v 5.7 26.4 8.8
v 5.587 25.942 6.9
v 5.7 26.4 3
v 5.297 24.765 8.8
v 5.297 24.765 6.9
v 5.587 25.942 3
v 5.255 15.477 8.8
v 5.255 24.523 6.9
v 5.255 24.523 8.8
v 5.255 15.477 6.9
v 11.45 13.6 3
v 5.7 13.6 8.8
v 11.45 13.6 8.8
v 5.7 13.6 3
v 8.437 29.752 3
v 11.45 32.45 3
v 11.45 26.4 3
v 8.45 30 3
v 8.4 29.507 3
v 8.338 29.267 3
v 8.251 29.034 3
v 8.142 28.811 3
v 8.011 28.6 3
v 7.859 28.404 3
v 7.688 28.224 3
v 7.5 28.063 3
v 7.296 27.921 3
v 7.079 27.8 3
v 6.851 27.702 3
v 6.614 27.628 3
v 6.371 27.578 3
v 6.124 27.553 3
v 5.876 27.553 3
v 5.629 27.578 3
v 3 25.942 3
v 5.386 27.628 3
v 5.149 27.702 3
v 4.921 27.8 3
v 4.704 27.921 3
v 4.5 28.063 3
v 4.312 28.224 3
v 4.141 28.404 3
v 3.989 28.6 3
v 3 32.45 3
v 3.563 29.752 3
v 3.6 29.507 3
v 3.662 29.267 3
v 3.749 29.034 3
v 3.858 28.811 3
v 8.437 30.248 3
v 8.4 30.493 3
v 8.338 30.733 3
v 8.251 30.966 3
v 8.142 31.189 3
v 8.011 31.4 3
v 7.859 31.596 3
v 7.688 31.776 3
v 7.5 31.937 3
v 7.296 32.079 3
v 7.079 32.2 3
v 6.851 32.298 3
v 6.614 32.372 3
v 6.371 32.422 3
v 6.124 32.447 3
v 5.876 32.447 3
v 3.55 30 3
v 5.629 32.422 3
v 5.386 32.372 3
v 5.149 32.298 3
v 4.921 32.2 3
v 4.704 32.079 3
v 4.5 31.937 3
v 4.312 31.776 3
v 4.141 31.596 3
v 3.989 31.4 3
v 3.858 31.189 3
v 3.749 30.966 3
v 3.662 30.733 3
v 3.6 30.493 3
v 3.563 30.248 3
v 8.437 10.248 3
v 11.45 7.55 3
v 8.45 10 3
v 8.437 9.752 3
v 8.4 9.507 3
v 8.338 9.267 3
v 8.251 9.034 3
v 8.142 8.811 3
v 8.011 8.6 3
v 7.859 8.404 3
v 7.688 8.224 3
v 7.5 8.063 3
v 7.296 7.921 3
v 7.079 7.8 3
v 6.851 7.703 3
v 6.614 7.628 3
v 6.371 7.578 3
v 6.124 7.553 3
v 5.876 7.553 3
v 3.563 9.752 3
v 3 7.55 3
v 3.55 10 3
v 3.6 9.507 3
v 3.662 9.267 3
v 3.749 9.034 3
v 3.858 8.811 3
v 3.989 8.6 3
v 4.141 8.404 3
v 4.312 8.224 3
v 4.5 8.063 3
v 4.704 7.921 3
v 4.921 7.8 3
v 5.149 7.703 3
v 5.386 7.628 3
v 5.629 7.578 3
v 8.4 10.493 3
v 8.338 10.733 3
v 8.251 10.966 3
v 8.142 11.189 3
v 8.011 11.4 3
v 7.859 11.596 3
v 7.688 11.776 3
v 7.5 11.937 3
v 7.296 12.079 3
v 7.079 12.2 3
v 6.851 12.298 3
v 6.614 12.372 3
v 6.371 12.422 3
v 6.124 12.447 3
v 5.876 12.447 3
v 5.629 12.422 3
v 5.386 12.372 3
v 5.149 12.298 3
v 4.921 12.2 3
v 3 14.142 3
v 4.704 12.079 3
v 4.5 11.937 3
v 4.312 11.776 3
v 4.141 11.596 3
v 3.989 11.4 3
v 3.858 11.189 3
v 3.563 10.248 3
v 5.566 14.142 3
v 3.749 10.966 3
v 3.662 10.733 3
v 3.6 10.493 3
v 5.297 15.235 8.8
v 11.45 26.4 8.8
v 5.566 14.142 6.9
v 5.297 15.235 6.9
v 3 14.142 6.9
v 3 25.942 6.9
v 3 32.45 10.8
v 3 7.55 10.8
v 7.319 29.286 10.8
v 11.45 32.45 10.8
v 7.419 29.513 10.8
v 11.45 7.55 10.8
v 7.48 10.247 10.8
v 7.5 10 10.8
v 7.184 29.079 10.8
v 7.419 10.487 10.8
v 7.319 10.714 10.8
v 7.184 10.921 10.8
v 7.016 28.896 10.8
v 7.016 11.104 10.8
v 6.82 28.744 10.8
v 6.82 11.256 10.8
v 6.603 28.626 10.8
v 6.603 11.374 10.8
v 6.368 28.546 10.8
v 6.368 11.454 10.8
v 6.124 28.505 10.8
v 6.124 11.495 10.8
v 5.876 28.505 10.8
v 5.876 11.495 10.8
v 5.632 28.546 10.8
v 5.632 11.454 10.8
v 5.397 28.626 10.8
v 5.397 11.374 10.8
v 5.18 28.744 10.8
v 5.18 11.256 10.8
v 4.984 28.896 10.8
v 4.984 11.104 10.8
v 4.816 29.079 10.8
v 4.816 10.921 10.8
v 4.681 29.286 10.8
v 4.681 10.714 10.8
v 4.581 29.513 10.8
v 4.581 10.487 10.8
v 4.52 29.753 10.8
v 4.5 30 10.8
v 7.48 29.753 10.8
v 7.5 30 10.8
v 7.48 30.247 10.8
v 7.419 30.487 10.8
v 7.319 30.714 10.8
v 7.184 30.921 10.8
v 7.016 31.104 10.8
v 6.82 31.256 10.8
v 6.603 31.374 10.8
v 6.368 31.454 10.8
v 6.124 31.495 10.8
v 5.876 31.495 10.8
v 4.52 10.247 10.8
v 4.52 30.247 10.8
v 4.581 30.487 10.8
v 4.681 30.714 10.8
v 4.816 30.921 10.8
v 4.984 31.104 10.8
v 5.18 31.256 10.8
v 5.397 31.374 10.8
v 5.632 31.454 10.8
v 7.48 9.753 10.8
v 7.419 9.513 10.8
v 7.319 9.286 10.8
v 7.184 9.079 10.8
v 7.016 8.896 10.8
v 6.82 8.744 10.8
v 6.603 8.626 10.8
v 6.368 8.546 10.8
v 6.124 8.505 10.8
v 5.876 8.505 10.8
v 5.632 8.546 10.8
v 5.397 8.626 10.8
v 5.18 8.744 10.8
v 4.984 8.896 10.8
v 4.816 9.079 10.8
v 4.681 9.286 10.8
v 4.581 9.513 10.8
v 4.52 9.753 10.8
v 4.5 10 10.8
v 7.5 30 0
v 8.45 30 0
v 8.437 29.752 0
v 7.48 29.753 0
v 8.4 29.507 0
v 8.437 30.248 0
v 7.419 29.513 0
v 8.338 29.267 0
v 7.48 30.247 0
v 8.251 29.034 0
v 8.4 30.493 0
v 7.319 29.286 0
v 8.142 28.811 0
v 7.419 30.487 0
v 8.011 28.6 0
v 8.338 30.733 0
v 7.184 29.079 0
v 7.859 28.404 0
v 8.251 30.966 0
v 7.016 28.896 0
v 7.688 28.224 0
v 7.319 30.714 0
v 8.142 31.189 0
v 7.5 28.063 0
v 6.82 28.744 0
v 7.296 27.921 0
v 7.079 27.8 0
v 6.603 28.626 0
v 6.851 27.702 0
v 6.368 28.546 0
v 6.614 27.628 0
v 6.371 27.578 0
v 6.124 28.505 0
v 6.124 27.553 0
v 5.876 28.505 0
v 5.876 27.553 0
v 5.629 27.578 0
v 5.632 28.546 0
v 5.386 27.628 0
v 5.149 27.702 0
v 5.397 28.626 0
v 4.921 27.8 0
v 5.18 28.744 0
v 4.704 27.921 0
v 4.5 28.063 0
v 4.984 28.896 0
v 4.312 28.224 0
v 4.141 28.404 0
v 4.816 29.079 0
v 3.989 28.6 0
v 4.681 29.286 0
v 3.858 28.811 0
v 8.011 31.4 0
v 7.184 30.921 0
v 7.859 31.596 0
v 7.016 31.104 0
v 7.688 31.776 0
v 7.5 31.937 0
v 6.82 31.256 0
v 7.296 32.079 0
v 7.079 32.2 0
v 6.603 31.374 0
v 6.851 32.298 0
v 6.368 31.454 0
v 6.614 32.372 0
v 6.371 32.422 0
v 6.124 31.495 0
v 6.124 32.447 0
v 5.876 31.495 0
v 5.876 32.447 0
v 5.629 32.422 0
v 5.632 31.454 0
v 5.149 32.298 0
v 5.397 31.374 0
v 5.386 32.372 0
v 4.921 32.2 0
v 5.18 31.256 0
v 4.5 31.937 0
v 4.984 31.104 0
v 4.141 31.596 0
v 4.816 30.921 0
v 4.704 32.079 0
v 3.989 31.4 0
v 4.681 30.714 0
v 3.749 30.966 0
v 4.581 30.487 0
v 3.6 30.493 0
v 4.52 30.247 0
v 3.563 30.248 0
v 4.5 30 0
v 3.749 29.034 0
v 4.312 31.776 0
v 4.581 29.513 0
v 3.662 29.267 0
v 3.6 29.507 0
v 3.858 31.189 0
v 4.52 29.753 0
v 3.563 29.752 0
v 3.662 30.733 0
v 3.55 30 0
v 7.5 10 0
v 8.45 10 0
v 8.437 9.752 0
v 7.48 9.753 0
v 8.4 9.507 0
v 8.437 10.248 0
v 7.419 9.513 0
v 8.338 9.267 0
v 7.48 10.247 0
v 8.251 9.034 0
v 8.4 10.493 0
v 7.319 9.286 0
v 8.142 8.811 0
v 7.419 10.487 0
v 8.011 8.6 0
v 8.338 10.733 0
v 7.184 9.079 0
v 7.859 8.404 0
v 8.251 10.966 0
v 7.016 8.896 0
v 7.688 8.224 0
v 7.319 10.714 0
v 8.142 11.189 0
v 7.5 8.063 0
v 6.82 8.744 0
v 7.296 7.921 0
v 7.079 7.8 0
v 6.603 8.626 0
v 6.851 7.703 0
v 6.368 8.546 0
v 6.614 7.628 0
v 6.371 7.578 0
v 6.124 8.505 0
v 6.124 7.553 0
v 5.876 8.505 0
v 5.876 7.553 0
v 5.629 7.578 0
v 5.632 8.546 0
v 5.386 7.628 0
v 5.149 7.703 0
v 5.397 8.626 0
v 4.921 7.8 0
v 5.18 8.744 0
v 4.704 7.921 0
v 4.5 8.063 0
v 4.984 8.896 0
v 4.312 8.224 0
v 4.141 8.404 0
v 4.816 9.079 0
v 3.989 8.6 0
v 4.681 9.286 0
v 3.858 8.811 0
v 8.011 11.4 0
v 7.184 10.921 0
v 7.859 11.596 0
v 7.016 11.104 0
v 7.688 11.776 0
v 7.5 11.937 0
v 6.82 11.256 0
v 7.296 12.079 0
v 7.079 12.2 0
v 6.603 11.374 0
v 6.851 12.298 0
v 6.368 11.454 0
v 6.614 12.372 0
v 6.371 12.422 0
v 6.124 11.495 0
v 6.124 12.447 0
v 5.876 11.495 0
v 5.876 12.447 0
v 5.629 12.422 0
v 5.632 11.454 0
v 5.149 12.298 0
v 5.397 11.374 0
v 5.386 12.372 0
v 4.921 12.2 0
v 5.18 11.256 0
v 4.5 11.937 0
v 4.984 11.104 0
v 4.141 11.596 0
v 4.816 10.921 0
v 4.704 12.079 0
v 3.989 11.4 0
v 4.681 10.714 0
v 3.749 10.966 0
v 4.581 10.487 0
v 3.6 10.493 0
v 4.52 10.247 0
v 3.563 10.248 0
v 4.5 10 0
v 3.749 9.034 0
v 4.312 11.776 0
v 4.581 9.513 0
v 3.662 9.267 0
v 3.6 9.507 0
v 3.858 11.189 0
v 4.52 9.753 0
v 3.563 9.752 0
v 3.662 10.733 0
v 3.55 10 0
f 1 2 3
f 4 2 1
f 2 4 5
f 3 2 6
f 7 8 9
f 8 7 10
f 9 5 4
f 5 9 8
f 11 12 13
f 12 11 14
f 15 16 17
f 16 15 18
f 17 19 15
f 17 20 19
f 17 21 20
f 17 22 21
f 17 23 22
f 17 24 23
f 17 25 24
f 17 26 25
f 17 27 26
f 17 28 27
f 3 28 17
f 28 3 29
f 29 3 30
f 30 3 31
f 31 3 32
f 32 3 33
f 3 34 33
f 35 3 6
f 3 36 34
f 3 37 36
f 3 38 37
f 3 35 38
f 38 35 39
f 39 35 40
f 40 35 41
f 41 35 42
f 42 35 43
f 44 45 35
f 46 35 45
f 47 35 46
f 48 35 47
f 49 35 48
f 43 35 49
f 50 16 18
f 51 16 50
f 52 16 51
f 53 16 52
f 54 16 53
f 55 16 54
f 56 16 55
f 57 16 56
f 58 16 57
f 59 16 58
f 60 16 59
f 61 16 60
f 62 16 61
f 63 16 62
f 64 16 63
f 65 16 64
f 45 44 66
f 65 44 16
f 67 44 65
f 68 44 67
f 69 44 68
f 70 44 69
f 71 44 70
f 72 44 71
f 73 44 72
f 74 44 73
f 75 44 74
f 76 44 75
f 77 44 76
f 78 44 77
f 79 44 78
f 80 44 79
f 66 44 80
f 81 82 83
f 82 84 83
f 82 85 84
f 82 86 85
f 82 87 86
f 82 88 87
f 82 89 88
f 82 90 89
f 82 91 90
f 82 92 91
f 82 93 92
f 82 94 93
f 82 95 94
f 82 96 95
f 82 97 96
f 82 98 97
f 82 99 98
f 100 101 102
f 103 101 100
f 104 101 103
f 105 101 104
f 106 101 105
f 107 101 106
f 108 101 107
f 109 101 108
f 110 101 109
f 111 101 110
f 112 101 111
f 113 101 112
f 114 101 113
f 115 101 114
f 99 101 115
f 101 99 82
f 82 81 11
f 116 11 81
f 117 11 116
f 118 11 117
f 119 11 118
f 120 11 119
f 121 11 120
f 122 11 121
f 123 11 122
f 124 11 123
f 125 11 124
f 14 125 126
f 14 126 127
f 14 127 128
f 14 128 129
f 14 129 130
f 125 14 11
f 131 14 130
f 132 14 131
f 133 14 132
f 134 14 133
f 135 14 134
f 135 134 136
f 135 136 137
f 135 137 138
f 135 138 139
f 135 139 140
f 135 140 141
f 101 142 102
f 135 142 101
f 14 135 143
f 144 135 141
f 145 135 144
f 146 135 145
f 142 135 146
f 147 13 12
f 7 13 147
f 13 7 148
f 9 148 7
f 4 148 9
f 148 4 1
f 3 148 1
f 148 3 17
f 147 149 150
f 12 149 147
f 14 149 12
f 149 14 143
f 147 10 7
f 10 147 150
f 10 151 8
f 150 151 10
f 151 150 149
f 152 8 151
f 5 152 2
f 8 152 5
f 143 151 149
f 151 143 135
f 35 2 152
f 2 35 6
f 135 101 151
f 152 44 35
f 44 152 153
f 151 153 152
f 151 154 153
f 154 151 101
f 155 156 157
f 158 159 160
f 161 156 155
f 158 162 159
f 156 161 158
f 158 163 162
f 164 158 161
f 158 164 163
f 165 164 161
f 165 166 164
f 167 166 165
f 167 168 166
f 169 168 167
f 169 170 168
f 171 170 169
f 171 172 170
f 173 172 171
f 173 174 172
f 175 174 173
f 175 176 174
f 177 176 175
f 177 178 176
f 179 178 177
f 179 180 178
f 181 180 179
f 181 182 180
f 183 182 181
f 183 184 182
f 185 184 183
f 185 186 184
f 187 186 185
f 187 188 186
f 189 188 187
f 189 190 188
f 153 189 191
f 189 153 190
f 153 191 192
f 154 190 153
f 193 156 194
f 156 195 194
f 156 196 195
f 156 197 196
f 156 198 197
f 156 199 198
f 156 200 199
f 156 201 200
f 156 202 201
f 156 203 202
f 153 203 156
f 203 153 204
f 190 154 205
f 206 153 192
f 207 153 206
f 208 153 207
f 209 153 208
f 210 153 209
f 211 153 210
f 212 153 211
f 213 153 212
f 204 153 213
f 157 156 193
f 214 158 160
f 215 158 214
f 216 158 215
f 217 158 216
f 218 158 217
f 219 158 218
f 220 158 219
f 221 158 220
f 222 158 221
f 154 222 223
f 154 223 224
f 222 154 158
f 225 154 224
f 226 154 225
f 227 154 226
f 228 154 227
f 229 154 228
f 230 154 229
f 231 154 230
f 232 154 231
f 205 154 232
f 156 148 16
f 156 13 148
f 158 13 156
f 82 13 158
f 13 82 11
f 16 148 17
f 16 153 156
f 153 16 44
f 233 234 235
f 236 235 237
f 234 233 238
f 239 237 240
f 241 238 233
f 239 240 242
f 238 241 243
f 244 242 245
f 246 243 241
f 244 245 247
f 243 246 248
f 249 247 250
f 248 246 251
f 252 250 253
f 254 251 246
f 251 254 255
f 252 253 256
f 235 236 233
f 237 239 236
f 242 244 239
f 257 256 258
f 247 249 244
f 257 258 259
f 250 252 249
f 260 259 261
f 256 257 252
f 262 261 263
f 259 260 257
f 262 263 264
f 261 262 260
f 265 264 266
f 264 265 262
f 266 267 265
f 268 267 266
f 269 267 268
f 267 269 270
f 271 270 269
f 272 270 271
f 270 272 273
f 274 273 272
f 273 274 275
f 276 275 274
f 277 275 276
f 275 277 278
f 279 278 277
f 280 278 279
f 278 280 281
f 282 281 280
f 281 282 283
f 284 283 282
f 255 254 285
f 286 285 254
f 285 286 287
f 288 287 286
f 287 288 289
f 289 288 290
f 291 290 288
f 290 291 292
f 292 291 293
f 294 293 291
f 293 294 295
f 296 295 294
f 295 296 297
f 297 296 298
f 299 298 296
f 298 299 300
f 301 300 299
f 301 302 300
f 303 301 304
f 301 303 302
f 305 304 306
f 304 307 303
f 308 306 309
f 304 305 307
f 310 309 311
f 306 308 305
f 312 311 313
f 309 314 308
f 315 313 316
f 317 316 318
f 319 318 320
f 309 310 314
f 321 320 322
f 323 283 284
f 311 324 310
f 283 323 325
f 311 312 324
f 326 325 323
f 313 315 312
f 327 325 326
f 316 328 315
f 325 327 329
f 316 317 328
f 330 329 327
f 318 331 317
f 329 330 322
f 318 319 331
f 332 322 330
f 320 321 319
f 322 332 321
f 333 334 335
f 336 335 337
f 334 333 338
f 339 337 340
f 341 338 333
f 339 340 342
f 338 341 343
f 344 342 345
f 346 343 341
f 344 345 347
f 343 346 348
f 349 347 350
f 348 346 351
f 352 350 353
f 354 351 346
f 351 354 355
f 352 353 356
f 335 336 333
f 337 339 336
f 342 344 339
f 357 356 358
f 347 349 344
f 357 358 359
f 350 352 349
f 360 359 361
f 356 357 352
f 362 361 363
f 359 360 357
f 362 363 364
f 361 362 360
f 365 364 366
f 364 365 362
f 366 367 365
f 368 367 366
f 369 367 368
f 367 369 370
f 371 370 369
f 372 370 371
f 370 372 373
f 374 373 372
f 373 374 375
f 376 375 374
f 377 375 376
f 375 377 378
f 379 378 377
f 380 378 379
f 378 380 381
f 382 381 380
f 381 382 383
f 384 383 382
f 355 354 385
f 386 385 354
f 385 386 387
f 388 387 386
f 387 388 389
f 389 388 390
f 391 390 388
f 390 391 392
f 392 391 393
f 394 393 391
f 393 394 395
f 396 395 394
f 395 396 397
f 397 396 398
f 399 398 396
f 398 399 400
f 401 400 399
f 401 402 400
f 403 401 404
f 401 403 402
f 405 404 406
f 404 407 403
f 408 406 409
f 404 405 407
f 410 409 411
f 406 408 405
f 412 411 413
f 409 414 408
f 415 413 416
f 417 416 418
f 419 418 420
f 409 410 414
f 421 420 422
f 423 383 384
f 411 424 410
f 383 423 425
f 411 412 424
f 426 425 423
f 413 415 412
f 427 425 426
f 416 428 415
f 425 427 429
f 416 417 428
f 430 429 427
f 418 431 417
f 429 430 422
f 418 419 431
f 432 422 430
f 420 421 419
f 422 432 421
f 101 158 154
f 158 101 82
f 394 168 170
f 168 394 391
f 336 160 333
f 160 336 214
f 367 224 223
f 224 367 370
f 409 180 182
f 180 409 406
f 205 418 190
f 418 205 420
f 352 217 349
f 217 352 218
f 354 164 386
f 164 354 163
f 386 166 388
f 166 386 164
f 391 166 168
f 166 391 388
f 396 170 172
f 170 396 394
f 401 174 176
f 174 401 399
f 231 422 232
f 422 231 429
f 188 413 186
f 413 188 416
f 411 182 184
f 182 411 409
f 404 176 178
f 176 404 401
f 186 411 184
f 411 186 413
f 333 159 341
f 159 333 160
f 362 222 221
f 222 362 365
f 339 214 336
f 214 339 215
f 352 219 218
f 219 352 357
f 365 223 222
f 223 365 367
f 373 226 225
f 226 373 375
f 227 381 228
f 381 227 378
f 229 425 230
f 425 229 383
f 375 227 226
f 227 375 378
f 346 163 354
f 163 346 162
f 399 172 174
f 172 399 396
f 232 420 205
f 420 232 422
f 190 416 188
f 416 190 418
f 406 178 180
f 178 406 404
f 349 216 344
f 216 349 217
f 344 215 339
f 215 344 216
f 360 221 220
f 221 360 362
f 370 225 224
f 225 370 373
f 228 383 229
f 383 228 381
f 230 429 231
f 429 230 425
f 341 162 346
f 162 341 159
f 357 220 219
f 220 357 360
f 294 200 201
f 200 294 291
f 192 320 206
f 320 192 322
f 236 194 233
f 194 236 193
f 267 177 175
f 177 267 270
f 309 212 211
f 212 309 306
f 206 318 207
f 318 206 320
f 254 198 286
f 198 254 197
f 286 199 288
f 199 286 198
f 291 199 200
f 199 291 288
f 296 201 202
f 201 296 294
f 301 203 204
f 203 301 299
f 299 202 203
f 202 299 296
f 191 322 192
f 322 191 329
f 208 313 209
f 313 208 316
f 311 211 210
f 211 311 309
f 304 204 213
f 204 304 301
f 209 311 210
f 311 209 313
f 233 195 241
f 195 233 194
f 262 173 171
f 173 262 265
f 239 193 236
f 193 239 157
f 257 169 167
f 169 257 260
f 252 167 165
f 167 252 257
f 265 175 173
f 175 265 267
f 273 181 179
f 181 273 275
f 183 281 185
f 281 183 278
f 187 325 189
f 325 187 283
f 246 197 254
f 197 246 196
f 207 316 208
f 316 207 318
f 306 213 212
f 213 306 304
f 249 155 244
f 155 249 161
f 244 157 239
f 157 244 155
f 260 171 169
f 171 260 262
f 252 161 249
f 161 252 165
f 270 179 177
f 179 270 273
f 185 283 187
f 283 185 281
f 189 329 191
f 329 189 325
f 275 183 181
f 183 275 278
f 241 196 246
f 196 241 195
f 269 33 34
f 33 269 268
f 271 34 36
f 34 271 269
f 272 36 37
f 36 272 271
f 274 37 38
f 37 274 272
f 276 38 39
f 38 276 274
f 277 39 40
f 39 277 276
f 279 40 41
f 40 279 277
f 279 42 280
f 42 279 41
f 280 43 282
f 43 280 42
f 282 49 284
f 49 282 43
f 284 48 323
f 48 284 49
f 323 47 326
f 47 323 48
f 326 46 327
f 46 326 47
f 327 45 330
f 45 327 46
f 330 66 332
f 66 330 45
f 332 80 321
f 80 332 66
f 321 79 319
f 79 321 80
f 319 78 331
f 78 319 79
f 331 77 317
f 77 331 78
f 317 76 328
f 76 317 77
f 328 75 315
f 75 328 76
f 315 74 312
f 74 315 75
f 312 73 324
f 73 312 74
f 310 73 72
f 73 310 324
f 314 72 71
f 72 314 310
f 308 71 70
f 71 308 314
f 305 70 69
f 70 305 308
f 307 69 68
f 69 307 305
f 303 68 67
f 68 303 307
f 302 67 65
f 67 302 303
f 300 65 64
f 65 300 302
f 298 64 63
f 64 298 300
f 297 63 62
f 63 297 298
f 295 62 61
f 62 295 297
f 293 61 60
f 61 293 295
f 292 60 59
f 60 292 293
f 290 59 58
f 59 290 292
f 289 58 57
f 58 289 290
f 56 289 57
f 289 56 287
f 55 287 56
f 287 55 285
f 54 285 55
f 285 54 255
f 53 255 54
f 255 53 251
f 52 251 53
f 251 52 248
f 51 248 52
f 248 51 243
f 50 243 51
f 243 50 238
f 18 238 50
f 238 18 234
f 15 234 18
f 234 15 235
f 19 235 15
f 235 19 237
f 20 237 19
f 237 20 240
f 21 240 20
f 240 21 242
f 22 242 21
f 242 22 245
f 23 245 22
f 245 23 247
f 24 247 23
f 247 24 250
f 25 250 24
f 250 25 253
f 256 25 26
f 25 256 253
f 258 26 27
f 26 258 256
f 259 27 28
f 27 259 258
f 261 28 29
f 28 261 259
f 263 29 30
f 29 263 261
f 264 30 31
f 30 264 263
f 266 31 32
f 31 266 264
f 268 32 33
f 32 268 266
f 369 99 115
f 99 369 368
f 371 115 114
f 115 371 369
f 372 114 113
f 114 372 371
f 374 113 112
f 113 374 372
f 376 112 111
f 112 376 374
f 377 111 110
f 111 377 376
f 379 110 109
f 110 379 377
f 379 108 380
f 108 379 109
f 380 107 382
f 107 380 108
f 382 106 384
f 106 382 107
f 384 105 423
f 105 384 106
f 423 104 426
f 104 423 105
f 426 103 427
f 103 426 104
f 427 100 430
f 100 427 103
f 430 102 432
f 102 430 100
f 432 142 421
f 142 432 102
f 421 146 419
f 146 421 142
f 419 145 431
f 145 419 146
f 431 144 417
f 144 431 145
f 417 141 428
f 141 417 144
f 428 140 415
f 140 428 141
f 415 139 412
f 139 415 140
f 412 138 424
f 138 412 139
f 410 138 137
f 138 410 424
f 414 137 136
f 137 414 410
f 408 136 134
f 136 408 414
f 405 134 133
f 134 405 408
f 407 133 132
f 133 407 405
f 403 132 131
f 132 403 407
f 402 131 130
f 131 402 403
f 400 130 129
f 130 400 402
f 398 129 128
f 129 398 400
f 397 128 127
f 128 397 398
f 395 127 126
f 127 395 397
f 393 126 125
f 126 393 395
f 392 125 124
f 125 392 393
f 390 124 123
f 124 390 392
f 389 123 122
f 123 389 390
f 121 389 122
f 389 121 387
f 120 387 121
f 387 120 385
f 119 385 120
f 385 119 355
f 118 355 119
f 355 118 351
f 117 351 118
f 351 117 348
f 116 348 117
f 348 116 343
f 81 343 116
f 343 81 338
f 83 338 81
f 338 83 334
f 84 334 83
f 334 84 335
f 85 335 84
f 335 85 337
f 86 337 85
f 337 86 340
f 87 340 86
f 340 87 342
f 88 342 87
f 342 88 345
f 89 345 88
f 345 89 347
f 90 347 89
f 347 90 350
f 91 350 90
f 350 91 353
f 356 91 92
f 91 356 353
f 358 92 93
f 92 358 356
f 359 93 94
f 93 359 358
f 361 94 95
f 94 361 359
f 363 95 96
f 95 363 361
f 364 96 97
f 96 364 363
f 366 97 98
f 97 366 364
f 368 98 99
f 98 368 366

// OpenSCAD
$fa = $preview ? 8 : 3;
$fs = $preview ? 3 : 0.25;


hole_d = 4.9;
hole_distance = 20;
hole_to_wall = 6;
thickness = 3;

switch_dim = [6.3, 12.8, 5.8];
switch_hole_d = 1.5;
switch_holes = [1,2];
switch_holes_extra = 2*.7;

right = 2*hole_to_wall;
top = 2*hole_distance;

screw_d = 3;

module plate()
{
	color("grey") linear_extrude(thickness) difference()
	{
		square([right, top]);
		translate([hole_to_wall, hole_distance/2])
		{
			circle(d=hole_d);
			translate([0, hole_distance])
				circle(d=hole_d);
		}
	}
}

module switch()
{
	color("#303030") difference()
	{
		union()
		{
			cube(switch_dim);
			translate([switch_holes.x, switch_holes.y])
				cylinder(d=switch_hole_d+switch_holes_extra, h = switch_dim.z);
			translate([switch_holes.x, switch_dim.y-switch_holes.y])
				cylinder(d=switch_hole_d+switch_holes_extra, h = switch_dim.z);
		}
		translate([switch_holes.x, switch_holes.y, -.5])
			cylinder(d=switch_hole_d, h = switch_dim.z+1);
		
		translate([switch_holes.x, switch_dim.y-switch_holes.y, -.5])
			cylinder(d=switch_hole_d, h = switch_dim.z+1);
	}
}

difference()
{
	mums_dim = [hole_to_wall+hole_d/2,hole_distance+hole_d, thickness+switch_dim.z+2];
	translate([hole_to_wall/2,hole_distance-mums_dim.y/2,0])
	{
		cube(mums_dim);
	}
	
	translate([hole_to_wall, hole_distance/2, -.5])
		cylinder(d = screw_d, h = mums_dim.z+1);
	
	translate([hole_to_wall, hole_distance*1.5, -.5])
		cylinder(d = screw_d, h = mums_dim.z+1);

	translate([right - switch_dim.x,hole_distance - switch_dim.y/2, thickness])
	{
		hull() switch();
		pins_dim = [switch_dim.x-2*1.5, switch_dim.y-2*0.5, switch_dim.z/2+1];
		translate([-pins_dim.x, switch_dim.y/pins_dim.y/2])
			cube(pins_dim);
	}
	#plate();
}
